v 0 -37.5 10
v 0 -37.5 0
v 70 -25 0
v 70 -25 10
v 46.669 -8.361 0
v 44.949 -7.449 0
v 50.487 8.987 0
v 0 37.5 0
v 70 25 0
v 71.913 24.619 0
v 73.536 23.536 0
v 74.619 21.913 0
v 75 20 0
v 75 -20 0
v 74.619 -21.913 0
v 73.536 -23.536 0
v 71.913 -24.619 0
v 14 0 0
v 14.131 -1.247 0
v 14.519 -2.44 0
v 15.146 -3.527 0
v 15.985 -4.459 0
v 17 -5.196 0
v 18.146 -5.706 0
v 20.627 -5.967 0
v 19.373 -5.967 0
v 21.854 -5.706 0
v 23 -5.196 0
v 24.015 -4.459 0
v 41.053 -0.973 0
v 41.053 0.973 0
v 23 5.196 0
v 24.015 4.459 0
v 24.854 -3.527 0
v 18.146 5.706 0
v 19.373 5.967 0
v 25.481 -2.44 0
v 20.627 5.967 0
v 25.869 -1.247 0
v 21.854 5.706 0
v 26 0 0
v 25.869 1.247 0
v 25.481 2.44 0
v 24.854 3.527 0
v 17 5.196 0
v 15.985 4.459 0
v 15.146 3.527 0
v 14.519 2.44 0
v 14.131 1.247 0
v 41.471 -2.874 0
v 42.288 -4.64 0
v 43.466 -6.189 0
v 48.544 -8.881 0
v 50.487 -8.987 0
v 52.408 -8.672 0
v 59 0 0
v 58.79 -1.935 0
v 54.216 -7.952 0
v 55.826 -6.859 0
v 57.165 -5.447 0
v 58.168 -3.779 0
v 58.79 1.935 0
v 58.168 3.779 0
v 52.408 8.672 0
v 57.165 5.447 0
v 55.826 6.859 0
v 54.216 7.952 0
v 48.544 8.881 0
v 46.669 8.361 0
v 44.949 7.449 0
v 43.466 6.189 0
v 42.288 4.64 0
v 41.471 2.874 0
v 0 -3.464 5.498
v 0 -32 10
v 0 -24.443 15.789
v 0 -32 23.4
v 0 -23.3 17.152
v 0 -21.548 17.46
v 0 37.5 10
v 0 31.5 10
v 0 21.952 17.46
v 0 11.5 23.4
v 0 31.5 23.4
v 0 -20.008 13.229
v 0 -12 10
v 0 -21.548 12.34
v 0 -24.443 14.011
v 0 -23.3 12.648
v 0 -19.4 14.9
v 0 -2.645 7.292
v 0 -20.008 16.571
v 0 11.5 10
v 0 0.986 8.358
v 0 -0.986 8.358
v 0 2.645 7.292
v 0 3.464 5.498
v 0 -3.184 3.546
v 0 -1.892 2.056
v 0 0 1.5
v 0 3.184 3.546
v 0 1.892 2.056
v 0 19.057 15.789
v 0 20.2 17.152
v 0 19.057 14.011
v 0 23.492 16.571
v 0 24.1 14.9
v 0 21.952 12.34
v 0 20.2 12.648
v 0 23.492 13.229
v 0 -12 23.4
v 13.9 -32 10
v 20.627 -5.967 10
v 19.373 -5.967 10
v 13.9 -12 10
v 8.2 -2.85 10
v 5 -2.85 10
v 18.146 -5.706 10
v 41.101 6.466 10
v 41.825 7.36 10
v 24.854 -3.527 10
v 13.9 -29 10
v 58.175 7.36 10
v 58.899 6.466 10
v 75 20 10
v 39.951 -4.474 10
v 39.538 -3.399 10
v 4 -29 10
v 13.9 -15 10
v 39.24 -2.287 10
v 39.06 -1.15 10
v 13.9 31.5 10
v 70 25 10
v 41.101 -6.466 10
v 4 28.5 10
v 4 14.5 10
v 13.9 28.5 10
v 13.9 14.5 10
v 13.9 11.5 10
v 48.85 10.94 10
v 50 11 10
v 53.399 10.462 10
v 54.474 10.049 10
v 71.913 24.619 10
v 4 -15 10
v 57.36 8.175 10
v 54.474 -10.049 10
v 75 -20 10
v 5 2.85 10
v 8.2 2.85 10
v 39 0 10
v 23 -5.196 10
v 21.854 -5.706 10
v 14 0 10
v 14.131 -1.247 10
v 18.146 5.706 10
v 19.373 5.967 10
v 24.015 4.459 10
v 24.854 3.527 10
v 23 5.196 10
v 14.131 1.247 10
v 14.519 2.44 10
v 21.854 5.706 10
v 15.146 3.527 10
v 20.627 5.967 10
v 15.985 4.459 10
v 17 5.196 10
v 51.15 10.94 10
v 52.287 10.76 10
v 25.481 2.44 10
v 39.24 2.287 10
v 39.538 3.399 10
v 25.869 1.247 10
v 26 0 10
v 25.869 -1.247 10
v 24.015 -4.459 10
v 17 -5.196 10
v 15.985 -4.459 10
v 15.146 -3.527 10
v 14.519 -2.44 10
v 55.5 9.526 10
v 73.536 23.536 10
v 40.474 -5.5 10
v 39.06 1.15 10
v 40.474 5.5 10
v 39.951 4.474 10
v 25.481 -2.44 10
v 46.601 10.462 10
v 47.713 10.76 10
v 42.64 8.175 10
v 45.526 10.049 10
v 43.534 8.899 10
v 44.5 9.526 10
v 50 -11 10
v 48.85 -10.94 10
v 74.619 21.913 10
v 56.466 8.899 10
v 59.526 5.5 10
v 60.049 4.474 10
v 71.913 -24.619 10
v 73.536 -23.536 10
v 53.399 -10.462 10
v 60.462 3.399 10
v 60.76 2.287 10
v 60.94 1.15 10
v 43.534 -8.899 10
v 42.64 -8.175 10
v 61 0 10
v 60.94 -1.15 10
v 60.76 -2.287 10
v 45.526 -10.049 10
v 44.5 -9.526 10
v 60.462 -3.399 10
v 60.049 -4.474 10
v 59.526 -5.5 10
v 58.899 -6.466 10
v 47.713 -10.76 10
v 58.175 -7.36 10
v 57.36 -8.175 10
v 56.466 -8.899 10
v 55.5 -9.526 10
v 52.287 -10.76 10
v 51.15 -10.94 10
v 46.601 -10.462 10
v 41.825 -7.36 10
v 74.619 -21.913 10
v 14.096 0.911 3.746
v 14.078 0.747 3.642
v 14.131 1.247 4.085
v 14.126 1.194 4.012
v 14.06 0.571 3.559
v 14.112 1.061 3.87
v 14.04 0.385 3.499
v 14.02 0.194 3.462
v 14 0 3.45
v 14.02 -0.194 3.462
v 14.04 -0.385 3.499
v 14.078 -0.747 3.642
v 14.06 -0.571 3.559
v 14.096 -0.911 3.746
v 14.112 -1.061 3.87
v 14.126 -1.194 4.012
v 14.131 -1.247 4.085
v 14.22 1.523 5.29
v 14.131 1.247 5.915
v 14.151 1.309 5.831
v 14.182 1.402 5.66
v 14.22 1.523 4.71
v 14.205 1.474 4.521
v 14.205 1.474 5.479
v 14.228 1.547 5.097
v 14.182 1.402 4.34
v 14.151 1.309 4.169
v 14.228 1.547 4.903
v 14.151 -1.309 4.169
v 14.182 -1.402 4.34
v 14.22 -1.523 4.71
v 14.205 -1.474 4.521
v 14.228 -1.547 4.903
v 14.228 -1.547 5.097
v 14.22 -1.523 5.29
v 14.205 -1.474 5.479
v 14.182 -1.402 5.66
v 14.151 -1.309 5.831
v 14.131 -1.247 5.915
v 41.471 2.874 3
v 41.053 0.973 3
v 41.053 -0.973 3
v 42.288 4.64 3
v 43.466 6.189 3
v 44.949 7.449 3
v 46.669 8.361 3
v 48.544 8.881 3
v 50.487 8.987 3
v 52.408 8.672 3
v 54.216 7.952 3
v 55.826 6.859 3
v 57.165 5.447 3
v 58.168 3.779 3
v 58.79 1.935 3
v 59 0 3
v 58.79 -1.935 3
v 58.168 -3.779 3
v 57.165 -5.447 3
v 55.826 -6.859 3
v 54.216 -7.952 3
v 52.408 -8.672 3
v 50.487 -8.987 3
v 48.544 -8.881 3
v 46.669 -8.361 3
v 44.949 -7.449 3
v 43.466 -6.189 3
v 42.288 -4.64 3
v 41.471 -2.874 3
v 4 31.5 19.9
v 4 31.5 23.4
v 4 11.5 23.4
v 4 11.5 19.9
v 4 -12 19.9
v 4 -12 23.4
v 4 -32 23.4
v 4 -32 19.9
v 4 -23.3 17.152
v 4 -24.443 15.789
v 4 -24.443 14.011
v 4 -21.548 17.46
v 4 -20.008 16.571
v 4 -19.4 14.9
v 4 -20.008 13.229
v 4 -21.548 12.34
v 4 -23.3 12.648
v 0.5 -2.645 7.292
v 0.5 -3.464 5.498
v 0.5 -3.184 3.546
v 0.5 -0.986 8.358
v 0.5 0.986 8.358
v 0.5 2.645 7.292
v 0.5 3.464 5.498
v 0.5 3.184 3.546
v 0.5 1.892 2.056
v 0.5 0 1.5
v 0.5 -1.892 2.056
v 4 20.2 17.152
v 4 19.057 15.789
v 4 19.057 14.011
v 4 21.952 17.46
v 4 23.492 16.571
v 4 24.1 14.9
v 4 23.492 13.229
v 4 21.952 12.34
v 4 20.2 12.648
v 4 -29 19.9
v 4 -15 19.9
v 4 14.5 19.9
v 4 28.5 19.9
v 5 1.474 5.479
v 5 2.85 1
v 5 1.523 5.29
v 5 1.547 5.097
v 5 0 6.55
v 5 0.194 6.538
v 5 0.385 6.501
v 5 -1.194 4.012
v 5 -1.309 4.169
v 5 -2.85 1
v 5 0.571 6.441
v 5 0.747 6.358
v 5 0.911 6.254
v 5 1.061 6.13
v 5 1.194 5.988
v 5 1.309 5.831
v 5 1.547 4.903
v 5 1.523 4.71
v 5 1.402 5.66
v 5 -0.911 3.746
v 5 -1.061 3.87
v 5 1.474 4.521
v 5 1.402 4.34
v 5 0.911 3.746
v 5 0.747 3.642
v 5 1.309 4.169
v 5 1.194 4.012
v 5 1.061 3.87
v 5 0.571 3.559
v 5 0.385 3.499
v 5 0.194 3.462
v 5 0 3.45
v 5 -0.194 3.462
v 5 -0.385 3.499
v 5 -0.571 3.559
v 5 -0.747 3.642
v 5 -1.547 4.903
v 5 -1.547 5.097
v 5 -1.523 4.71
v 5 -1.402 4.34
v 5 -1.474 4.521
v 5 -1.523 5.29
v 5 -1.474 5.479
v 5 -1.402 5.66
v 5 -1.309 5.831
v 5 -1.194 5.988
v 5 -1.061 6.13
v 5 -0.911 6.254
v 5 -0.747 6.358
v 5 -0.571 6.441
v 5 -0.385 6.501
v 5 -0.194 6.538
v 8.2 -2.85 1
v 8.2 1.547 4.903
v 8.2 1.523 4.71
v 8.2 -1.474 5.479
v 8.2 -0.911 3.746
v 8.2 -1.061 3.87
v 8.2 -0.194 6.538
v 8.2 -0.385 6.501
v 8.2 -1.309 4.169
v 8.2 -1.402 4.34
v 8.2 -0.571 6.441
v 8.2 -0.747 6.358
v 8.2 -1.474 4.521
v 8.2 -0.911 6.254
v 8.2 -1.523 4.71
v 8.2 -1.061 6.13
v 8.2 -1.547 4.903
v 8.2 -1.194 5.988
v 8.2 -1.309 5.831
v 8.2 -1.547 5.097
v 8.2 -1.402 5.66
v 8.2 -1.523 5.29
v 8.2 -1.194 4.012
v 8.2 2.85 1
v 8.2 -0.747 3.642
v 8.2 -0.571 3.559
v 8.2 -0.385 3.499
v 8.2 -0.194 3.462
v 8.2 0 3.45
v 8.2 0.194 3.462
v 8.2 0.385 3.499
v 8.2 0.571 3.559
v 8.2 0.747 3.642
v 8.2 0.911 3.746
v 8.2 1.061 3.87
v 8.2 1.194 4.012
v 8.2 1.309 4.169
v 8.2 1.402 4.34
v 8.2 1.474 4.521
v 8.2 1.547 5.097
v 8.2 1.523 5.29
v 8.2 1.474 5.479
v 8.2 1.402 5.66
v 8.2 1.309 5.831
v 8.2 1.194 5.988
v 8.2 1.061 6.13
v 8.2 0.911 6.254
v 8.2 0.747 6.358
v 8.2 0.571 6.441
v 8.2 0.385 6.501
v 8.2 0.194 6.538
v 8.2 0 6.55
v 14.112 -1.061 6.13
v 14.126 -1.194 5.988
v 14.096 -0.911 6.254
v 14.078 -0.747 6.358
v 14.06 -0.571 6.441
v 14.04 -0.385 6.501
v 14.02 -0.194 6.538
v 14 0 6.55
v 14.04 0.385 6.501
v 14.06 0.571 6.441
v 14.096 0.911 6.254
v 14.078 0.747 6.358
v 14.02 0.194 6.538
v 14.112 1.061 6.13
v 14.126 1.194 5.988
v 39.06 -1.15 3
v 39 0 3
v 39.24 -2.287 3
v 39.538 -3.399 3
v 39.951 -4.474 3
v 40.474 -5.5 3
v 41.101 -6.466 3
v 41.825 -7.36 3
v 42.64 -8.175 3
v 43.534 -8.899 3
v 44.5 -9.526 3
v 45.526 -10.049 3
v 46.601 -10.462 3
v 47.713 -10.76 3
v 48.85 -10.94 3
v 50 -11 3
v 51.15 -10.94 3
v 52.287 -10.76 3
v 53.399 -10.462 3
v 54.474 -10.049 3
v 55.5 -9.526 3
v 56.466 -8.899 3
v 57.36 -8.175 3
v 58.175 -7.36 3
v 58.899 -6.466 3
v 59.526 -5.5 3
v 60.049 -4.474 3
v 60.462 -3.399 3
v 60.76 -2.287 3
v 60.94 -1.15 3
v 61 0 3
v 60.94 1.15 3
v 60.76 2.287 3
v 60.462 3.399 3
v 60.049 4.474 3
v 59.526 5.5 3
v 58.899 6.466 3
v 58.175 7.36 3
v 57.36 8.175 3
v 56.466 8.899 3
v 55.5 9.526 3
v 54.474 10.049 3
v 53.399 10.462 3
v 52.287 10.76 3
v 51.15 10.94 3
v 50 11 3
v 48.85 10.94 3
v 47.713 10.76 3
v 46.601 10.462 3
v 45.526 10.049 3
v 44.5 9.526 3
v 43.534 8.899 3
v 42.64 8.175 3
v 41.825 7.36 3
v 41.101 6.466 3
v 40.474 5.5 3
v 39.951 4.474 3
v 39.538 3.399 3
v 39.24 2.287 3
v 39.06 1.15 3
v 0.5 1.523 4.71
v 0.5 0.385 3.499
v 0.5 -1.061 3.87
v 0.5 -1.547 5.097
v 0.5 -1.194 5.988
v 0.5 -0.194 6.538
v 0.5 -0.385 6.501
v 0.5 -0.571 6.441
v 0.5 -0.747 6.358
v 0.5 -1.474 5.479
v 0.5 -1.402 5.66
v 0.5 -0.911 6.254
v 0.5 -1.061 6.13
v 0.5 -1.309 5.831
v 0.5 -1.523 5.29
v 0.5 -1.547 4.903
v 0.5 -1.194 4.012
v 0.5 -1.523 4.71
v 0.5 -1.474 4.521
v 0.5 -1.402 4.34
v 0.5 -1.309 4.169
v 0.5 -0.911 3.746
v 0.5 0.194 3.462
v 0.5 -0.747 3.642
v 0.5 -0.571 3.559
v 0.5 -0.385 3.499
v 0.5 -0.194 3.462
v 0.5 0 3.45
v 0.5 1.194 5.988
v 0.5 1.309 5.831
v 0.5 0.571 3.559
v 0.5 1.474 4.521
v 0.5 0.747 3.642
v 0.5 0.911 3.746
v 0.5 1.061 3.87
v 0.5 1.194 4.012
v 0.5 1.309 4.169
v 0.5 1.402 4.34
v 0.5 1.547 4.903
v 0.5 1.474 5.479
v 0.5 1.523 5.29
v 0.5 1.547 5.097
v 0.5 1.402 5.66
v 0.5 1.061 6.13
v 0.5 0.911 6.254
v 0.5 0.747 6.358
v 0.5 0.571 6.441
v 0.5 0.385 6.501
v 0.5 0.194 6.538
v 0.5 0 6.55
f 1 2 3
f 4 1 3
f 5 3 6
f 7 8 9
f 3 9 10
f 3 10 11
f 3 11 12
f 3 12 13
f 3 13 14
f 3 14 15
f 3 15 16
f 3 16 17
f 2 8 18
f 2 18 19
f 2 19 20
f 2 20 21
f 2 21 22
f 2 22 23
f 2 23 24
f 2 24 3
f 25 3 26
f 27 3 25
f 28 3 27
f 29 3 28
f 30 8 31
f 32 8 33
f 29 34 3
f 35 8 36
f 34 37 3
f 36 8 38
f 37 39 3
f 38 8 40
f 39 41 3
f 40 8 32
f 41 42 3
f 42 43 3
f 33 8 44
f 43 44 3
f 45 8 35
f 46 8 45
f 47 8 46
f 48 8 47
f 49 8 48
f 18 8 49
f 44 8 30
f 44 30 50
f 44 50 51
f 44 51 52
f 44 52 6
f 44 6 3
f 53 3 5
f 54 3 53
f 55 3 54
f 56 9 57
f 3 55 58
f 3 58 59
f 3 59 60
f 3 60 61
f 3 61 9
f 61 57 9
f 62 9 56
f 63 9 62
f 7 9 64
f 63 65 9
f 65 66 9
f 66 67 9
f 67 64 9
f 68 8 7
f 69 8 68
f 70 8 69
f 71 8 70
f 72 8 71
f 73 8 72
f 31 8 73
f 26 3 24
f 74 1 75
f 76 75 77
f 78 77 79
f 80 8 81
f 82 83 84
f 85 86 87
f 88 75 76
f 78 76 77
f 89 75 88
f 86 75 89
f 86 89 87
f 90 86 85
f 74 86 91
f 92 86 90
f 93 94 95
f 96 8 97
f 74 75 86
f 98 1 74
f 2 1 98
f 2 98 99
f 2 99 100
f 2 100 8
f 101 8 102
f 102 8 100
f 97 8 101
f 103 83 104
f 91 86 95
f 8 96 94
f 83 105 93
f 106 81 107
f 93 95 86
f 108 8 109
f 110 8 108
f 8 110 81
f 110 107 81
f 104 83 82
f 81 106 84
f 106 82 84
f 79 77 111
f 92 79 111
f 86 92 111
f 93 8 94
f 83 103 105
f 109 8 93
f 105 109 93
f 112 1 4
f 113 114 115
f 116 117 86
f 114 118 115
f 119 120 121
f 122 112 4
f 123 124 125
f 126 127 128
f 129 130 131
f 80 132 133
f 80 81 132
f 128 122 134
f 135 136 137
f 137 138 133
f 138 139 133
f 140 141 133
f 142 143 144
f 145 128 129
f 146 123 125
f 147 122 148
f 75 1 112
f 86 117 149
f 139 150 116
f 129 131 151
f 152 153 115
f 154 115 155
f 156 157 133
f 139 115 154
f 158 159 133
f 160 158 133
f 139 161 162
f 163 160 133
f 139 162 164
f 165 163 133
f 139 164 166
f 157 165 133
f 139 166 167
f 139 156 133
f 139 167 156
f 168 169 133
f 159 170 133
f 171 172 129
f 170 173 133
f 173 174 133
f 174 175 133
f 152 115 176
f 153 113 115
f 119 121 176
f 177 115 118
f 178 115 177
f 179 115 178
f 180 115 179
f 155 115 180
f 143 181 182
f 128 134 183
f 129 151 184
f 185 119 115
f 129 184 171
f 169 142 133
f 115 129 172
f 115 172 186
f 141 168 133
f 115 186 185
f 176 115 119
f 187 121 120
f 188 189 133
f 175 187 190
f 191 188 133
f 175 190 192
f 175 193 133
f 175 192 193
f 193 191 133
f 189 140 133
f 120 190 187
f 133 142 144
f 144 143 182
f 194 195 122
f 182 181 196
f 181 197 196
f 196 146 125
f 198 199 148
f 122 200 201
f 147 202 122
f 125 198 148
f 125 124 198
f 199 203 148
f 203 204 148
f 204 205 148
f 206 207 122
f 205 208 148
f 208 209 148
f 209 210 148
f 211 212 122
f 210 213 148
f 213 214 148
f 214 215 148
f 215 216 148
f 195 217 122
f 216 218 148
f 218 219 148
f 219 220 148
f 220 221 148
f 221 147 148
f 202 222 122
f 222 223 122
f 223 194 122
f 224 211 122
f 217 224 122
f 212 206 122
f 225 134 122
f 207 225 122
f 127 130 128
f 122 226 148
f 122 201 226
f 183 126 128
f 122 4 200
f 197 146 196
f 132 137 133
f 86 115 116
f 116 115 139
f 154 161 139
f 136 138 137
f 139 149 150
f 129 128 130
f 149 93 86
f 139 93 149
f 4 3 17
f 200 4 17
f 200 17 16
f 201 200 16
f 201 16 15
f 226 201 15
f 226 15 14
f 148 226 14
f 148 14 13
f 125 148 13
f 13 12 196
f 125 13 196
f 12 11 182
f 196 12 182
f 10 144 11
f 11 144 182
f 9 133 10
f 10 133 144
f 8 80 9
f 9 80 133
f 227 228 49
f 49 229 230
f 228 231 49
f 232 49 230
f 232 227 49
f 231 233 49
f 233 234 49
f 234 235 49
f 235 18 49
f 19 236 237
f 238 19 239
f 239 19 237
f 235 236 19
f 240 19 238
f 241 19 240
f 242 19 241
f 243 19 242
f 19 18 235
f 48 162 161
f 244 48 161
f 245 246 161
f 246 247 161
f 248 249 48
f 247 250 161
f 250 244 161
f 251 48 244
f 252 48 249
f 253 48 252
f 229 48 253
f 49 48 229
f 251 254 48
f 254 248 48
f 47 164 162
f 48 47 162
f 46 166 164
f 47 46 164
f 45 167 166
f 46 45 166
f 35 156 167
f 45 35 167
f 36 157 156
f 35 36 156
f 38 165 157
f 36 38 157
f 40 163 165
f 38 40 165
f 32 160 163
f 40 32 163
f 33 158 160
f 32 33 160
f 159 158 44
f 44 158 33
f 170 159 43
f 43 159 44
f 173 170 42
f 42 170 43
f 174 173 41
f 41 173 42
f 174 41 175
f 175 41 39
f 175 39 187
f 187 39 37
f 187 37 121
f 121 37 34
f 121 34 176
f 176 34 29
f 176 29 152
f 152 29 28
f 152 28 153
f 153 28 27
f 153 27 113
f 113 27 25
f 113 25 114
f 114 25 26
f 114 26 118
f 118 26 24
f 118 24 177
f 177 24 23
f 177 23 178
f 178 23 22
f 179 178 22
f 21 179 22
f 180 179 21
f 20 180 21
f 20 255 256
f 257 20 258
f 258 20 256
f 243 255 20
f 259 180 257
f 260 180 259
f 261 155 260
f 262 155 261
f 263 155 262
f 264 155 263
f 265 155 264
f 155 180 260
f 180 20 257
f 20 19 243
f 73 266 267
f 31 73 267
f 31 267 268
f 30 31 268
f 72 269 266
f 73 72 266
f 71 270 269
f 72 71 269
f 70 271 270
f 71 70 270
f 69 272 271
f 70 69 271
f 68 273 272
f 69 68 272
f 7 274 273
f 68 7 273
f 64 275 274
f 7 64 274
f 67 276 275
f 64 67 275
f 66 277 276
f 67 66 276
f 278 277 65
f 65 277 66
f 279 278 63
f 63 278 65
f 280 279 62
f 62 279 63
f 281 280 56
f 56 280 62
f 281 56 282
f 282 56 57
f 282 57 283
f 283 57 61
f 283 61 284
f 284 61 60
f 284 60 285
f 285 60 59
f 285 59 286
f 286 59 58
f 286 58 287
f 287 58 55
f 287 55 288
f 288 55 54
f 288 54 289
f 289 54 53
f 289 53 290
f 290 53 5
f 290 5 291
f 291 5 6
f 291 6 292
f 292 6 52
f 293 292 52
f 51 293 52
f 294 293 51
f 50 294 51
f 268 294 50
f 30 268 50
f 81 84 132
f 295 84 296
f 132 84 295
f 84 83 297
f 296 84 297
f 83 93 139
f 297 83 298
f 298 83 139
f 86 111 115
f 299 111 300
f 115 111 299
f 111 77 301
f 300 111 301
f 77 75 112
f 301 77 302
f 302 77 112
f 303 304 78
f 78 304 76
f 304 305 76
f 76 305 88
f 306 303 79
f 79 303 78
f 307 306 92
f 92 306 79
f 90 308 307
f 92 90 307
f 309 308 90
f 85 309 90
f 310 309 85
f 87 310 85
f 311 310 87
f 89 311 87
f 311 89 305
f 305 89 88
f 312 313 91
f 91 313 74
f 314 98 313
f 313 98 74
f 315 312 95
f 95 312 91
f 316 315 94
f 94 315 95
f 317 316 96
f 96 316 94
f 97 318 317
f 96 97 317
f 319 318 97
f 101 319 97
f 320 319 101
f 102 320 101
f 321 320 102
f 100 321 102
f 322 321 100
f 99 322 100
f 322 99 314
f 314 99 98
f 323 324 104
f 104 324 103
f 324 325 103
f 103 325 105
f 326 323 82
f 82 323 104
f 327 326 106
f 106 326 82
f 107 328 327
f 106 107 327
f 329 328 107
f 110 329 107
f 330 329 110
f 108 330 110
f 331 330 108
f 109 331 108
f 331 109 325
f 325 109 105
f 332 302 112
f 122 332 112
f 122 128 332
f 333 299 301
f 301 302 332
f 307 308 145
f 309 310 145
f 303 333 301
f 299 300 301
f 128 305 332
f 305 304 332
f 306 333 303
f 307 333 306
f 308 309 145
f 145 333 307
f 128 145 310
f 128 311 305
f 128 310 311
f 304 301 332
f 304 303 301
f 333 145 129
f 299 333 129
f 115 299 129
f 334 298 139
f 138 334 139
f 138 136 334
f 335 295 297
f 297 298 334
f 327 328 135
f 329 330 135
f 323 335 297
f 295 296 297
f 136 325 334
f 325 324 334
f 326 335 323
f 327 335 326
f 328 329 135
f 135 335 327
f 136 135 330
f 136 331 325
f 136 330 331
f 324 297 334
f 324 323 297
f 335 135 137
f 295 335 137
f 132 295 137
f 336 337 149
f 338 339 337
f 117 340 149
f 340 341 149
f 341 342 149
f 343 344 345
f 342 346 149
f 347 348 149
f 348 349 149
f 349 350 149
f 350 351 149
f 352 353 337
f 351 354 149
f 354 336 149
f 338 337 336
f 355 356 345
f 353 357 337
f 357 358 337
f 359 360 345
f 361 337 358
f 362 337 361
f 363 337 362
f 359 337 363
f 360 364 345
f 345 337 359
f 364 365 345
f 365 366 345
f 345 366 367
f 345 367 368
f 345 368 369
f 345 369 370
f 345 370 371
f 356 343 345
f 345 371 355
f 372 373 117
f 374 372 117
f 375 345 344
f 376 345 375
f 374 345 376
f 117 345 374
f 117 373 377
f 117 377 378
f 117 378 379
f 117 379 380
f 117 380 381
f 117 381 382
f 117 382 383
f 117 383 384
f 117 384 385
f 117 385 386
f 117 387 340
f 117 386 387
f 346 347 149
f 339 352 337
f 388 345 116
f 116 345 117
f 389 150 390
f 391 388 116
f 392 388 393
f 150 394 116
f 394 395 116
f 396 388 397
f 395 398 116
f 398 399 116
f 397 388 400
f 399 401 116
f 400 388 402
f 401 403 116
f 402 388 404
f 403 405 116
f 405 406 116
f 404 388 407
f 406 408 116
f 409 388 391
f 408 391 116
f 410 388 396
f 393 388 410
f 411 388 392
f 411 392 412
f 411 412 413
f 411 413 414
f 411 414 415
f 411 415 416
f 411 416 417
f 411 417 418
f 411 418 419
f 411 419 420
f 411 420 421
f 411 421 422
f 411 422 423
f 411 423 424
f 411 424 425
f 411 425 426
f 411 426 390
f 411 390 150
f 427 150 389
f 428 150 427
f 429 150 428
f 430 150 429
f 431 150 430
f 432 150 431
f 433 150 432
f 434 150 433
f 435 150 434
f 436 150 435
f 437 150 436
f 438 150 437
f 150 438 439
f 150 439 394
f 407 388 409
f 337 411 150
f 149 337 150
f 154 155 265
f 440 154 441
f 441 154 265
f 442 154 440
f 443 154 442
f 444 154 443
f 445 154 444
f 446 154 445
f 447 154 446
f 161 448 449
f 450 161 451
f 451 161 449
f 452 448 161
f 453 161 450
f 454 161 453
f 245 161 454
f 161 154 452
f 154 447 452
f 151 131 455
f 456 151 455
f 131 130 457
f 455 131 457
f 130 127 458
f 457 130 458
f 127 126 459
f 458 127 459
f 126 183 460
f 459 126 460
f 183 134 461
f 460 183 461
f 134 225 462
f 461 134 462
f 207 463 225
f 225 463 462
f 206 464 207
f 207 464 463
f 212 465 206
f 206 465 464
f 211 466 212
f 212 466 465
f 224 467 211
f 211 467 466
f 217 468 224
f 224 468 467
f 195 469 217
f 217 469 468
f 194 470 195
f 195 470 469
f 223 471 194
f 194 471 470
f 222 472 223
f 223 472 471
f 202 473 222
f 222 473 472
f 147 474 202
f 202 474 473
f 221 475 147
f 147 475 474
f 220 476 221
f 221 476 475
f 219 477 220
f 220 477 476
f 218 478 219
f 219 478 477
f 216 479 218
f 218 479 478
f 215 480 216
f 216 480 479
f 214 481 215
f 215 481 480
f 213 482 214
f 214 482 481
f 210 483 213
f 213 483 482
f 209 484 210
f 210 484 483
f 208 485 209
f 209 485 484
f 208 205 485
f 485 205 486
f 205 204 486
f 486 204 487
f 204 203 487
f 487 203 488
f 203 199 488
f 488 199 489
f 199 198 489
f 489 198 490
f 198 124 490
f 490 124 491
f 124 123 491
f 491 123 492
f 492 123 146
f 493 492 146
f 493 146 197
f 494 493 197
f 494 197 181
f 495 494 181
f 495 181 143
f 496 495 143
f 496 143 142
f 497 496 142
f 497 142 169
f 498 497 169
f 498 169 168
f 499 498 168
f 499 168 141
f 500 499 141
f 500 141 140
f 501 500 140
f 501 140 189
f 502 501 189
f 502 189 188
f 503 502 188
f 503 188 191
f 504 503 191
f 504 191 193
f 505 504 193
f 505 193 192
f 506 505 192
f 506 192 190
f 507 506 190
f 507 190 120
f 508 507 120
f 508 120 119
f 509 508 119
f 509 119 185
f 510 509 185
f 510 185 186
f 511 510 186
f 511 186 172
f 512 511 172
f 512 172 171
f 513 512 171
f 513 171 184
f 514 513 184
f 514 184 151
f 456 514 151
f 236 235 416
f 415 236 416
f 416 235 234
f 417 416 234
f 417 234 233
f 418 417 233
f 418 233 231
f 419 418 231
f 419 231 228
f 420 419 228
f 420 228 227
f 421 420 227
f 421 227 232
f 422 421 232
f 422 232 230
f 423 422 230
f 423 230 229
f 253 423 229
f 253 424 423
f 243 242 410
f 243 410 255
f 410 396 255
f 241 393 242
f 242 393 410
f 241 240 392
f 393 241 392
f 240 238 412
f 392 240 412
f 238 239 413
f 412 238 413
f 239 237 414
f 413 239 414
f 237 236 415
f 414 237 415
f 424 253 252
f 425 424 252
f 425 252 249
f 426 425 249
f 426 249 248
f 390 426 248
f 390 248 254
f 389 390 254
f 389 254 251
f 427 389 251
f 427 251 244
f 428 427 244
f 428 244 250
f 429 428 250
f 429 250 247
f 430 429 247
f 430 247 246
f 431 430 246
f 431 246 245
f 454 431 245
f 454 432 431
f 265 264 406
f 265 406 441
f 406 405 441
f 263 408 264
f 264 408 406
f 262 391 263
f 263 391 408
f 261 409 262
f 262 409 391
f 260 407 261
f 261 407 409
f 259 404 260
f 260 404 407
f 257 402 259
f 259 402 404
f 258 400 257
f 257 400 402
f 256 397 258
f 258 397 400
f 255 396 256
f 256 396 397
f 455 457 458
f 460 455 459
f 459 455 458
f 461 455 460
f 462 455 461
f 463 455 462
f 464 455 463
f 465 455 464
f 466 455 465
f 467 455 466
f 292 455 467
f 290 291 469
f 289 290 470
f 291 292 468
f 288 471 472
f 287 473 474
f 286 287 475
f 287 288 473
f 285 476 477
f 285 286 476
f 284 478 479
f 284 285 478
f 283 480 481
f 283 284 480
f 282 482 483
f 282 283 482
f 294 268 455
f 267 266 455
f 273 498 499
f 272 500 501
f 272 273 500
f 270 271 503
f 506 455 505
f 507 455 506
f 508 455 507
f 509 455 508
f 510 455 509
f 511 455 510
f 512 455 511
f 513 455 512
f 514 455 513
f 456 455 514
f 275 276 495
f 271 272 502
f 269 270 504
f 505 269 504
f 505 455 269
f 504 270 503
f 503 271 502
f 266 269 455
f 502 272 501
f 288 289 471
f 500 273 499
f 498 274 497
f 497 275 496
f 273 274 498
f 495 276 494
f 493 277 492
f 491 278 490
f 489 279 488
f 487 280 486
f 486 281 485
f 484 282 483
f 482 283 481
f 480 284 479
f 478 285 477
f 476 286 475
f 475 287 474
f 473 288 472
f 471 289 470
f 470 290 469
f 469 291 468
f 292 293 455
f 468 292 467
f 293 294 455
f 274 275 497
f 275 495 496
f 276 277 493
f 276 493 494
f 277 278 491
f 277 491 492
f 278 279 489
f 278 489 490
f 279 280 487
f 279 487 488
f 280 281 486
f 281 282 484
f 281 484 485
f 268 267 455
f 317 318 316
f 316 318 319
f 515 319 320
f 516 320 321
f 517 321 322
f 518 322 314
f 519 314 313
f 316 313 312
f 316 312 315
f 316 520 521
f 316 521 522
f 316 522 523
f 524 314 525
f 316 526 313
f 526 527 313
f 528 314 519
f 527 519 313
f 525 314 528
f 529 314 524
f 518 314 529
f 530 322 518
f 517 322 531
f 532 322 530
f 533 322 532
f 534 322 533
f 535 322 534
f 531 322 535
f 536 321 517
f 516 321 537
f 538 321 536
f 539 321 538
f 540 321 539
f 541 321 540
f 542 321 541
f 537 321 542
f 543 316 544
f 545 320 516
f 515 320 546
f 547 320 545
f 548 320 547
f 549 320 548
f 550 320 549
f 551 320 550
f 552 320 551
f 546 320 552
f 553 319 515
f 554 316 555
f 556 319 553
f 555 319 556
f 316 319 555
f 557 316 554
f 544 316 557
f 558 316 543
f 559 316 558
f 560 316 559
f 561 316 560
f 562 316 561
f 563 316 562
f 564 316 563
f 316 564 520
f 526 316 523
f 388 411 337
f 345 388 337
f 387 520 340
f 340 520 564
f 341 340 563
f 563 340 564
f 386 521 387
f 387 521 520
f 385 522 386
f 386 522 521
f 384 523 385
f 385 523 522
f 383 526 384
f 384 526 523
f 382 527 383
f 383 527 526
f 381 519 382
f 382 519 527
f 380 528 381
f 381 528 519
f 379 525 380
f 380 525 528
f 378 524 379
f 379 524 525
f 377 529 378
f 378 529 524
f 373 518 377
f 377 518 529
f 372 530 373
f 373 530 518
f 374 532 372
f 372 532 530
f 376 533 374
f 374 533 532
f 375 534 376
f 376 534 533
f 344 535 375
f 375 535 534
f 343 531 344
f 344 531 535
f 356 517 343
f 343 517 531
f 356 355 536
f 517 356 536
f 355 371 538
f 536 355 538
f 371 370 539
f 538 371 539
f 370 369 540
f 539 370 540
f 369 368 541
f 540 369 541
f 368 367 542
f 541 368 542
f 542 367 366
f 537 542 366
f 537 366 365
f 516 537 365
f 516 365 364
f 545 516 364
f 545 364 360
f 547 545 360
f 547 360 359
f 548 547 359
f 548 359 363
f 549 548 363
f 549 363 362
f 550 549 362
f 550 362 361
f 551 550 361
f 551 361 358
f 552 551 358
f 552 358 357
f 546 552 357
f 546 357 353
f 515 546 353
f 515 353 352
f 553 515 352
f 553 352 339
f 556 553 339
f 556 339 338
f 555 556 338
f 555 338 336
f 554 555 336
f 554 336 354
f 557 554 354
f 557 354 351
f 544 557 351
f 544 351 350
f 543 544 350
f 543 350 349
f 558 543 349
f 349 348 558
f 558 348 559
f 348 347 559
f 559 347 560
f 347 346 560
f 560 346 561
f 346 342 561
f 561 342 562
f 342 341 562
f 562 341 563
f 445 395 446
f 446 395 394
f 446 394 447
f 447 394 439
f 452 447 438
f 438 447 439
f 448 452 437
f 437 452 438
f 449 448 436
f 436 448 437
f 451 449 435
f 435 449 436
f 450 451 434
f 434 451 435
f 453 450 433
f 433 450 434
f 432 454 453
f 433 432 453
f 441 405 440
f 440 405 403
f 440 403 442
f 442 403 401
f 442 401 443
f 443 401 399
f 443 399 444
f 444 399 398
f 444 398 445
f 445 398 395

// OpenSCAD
// file: common_components.scad
module rod_clamp_holes(){

	bolt_head_radius = 3.5;
	bolt_shaft_radius = 1.55;
	depth = 20; 
	nut_depth = 8.5; 
	nut_radius = 2.0; 

	cylinder(h=depth, r=bolt_shaft_radius, $fn=50);

	cylinder(h=4, r=bolt_head_radius);

	translate([-nut_depth, -5.7/2, nut_depth]) 
		cube([nut_depth + nut_radius +2 , 5.7, 3.2]);

}

//rod_clamp_holes();




module warp_prevention(){

	translate([-100,-100,0]){
		for(i = [0:20:200]){
	
			translate([i, 0, 0])
				cube([2, 200, 2]);
	
			translate([0, i, 0])
				cube([200, 2, 2]);
	
		}
	}

}

module teardrop_cylinder(r, h){

	linear_extrude(height=h){
		hull(){
	
			circle(r=r);
			translate([-r * 1.25, 0])
				circle(r=1);
	
		}
	}
}
// file: configuration.scad
rod_radius = 6.0;
frame_rod_radius = 4.0;
z_threaded_rod_radius = 4.0;

y_rod_height = 70;
x_rod_spacing = 70;

bearing_radius = 11; 					// 608 bearing

//  LM8 = 7.5  LM10 = 9.5  LM12 = 10.5
linear_bearing_radius =  7.6;  // LM8 + some extra space

z_threaded_to_smooth_spacing = 30;   // 30mm is OK for 8mm rods 
x_end_threaded_rod_height = 20;
// file: z_components.scad
include <common_components.scad>
include <configuration.scad>


z_shelf_depth = z_threaded_to_smooth_spacing + 45;
z_shelf_round_radius = 5;
z_shelf_small_width = 40;
z_shelf_large_width = 75;
z_shelf_height = 10;


z_shelf_rod_pos = 20; 
z_shelf_bearing_pos = z_shelf_rod_pos + z_threaded_to_smooth_spacing;
z_shelf_bearing_depth = 7;




tab_width = 13.5;


module z_shelf_2d() {

	hull(){	
		translate([z_shelf_depth - z_shelf_round_radius, z_shelf_small_width / 2]) 
			circle(r=z_shelf_round_radius);	
		translate([z_shelf_depth - z_shelf_round_radius, -z_shelf_small_width / 2])
			circle(r=z_shelf_round_radius);	
		polygon(points=[
			[0, z_shelf_large_width/2], 
			[z_shelf_depth, z_shelf_small_width/2 ],
			[z_shelf_depth, -z_shelf_small_width/2 ],
			[0, -z_shelf_large_width/2],
		]);
	}

}

//z_shelf_2d();

module z_shelf_bearing(){

	bearing_holder = z_shelf_height - z_shelf_bearing_depth; 

	difference(){

		linear_extrude(height=10) z_shelf_2d();

		union(){	
			// hole for rod
			translate([z_shelf_rod_pos, 0, -1]){
				cylinder(h=z_shelf_height + 2, r=rod_radius);
			}
			
			// hole for bearing
			translate([z_shelf_bearing_pos, 0, bearing_holder]){
				cylinder(h=z_shelf_height, r=bearing_radius);
			}

			// hole for rod through bearing
			translate([z_shelf_bearing_pos, 0, -1]){
				cylinder(h=z_shelf_height + 2, r=bearing_radius - 2);
			}
			
			// rod clamp bolt
			translate([-3.5,0,z_shelf_height/2])
				rotate([0, 90, 0])
					#rod_clamp_holes();

		}
	}

}





//z_shelf_bearing();
//translate([0, z_shelf_large_width/2 - 6, z_shelf_height]) tab();
//translate([0, - (z_shelf_large_width/2 - 6 - tab_width - 6), z_shelf_height]) tab();

module tab() {

		rotate([90,0,0]) 
		difference() {
			union() {
				cube([4,tab_width,20]);
				translate([4,0,0]) linear_extrude(height=3) polygon(points=[[0,0],[0,10],[10,0]]);
				translate([4,0,17]) linear_extrude(height=3) polygon(points=[[0,0],[0,10],[10,0]]);
		}
		translate([-1,5,10]) rotate([0,90,0]) cylinder(r=2.6, h=6);
	}

}
// main file
include <z_components.scad>
include <configuration.scad>

module z_shelf_bearing(){ 

	bearing_holder = z_shelf_height - z_shelf_bearing_depth; 

	difference(){

		linear_extrude(height=10) z_shelf_2d(); 

		union(){	
			// hole for rod
			translate([z_shelf_rod_pos, 0, -1]){
				cylinder(h=z_shelf_height + 2, r=rod_radius, $fn=30);
			}
			
			// hole for bearing
			translate([z_shelf_bearing_pos, 0, bearing_holder]){
				cylinder(h=z_shelf_height, r=bearing_radius, $fn=60);
			}

			// hole for rod through bearing
			translate([z_shelf_bearing_pos, 0, -1]){
				cylinder(h=z_shelf_height + 2, r=bearing_radius - 2);
			} 

			// rod clamp bolt
			translate([-3.5,0,z_shelf_height/2])
				rotate([0, 90, 0])
					#rod_clamp_holes();
		}
	}

}


module z_top(){

	union(){
		z_shelf_bearing();
		translate([0, z_shelf_large_width/2 - 6, z_shelf_height - 0.1]) tab();
		translate([0, - (z_shelf_large_width/2 - 6 - tab_width - 6), z_shelf_height - 0.1]) tab();
	}



}

z_top();
